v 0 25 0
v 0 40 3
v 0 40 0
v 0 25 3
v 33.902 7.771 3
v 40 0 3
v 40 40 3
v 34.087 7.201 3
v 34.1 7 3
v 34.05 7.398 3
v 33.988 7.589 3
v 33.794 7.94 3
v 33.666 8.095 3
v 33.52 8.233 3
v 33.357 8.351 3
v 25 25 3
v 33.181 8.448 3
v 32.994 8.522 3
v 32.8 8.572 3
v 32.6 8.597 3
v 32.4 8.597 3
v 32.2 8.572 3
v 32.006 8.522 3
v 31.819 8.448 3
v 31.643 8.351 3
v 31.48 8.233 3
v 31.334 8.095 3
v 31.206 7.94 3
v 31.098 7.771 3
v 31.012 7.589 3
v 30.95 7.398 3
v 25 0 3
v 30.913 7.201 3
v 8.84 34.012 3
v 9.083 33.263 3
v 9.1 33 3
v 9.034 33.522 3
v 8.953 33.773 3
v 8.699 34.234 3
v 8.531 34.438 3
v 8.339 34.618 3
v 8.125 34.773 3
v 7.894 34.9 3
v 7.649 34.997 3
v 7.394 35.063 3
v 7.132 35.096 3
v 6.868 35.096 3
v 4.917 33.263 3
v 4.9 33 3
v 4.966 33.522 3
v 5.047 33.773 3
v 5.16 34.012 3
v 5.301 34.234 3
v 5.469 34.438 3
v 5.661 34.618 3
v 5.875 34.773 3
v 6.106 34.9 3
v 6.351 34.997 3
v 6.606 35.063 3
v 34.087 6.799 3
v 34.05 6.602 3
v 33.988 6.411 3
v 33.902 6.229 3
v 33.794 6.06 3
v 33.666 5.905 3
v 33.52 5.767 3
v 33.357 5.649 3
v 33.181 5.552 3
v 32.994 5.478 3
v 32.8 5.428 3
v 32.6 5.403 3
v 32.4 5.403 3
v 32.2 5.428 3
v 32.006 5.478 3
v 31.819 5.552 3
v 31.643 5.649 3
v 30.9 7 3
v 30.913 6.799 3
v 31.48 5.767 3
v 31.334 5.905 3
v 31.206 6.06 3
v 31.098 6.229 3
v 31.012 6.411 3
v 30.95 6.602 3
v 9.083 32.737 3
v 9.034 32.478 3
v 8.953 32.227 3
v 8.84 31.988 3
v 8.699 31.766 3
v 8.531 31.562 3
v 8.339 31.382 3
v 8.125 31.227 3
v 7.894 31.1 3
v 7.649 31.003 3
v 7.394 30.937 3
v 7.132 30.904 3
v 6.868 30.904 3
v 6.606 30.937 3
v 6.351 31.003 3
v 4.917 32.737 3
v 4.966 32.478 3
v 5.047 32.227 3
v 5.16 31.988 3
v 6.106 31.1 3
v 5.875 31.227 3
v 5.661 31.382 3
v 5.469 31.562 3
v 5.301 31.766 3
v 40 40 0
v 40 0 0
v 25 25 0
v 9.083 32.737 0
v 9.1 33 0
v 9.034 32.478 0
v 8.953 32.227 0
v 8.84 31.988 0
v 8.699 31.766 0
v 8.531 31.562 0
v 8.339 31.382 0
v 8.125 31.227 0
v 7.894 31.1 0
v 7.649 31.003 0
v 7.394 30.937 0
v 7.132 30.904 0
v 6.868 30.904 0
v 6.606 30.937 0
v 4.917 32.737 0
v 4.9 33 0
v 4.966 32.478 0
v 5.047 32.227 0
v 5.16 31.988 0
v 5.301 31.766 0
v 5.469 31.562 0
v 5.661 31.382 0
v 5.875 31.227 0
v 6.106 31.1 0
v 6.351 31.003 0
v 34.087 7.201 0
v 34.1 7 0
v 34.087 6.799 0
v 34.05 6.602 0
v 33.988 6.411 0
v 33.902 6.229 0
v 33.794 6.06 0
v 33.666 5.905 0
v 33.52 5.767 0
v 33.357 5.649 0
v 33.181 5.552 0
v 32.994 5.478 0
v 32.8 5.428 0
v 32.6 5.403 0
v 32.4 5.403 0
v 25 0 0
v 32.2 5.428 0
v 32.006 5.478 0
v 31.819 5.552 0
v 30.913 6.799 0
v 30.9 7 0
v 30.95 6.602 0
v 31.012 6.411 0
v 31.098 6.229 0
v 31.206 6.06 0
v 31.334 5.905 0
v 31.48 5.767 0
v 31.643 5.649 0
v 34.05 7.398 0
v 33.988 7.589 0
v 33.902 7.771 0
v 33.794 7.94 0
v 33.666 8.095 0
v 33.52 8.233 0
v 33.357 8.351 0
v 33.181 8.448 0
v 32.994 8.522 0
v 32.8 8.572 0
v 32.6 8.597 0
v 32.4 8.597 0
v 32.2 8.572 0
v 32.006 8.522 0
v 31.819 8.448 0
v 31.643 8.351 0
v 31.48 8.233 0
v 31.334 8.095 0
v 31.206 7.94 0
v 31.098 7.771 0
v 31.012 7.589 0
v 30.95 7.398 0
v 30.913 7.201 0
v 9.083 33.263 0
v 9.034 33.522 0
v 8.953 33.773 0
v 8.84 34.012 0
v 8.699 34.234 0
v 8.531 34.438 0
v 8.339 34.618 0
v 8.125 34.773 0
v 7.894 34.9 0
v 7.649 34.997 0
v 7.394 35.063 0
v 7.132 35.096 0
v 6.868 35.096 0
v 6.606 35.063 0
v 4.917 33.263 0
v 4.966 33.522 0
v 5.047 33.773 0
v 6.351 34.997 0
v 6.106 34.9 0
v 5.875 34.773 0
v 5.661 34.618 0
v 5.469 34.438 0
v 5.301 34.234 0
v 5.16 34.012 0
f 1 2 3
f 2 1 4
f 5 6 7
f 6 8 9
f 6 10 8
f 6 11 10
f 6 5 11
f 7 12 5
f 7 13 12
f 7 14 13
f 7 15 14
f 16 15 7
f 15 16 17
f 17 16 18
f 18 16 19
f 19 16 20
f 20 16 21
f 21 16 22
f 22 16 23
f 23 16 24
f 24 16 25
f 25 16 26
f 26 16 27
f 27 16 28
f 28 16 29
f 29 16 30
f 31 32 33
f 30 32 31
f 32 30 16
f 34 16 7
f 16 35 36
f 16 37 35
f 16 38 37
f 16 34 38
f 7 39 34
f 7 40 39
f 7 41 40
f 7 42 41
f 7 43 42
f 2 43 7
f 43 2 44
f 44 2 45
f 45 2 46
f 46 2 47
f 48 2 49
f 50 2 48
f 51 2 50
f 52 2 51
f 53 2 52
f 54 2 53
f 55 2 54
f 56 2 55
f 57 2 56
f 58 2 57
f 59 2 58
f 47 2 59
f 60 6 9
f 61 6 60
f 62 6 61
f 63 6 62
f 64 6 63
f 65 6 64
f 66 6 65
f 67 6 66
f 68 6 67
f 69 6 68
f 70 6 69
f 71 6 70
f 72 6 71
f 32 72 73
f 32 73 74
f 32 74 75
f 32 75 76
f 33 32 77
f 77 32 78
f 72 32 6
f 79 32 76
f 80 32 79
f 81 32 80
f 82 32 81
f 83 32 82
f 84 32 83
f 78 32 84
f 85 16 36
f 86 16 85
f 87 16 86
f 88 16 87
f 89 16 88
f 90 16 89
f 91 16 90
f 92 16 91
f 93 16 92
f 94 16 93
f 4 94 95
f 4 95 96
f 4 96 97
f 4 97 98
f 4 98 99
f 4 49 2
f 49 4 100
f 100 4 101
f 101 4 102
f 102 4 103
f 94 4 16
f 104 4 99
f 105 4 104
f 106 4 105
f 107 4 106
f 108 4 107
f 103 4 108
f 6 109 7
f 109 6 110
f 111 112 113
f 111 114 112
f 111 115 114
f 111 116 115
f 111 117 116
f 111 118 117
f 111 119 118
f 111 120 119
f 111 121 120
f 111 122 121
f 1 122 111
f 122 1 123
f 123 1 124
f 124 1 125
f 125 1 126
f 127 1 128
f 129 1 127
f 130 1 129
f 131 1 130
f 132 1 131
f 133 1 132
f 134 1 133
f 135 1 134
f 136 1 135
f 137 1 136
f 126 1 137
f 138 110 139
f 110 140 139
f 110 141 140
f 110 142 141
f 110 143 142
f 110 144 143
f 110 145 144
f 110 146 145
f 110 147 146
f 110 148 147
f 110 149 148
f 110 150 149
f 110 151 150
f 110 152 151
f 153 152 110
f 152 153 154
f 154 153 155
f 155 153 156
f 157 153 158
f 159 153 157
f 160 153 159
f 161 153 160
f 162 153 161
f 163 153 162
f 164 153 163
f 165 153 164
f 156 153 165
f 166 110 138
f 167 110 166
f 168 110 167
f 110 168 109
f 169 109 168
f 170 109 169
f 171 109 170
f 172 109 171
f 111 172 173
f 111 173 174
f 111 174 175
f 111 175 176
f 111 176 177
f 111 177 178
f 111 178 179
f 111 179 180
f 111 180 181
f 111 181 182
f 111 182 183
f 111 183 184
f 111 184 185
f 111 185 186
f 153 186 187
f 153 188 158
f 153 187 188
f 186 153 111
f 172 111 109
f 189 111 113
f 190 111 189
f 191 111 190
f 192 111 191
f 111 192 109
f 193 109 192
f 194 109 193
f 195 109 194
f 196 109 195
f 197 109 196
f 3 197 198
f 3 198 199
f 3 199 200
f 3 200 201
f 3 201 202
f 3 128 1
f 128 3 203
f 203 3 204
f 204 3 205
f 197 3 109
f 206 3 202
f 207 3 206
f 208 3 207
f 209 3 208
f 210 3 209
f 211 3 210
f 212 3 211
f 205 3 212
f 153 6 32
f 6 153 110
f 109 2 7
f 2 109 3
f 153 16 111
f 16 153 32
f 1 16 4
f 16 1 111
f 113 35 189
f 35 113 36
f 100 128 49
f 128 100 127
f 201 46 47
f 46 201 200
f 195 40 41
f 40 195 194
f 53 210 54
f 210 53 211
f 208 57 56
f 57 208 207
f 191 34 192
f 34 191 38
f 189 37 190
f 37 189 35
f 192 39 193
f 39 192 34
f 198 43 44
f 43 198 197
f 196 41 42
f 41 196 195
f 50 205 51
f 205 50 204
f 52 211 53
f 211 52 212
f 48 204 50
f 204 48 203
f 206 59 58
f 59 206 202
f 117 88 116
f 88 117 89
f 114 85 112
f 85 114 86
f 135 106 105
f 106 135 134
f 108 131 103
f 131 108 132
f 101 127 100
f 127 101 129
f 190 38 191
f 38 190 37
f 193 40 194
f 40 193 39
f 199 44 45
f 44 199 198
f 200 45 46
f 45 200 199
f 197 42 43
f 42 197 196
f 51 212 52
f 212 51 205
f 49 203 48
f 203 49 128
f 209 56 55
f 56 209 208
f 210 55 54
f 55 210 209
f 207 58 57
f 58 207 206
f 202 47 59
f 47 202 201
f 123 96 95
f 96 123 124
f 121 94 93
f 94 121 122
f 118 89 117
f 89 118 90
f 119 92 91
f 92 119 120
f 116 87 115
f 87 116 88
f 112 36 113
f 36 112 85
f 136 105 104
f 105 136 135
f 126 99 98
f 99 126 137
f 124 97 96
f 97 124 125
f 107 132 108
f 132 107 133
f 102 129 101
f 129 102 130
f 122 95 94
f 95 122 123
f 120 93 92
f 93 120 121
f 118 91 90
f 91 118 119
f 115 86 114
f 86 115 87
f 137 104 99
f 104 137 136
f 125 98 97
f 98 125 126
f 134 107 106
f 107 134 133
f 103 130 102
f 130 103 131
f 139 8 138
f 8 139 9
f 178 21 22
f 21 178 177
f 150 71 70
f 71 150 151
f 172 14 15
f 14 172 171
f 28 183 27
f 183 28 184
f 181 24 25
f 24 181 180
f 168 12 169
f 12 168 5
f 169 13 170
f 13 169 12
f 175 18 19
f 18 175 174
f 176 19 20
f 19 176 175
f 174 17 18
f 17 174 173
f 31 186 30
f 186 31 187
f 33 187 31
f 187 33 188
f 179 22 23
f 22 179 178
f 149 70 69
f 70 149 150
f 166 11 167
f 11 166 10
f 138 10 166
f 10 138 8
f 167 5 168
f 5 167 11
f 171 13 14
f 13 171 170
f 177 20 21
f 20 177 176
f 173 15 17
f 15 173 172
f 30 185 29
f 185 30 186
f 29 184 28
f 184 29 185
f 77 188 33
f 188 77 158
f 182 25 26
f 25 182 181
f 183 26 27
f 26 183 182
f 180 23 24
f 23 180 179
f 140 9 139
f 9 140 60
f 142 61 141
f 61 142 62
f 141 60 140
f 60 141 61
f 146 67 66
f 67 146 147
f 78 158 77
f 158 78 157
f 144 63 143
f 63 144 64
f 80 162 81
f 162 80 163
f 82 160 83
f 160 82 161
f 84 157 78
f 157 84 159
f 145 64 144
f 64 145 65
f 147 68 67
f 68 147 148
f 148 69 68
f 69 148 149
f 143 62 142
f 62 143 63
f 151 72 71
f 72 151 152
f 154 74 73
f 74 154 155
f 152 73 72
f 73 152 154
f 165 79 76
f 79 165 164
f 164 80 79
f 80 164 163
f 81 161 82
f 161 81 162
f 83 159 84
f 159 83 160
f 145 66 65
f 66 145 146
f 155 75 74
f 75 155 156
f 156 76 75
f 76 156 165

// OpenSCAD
$fn=50;

difference() {
    cube([40,40,3]);
    cube([25,25,3]);
    translate([7,33,0]) cylinder(3,4.2/2,4.2/2);
    translate([32.5,7,0]) cylinder(3,3.2/2,3.2/2);
}
